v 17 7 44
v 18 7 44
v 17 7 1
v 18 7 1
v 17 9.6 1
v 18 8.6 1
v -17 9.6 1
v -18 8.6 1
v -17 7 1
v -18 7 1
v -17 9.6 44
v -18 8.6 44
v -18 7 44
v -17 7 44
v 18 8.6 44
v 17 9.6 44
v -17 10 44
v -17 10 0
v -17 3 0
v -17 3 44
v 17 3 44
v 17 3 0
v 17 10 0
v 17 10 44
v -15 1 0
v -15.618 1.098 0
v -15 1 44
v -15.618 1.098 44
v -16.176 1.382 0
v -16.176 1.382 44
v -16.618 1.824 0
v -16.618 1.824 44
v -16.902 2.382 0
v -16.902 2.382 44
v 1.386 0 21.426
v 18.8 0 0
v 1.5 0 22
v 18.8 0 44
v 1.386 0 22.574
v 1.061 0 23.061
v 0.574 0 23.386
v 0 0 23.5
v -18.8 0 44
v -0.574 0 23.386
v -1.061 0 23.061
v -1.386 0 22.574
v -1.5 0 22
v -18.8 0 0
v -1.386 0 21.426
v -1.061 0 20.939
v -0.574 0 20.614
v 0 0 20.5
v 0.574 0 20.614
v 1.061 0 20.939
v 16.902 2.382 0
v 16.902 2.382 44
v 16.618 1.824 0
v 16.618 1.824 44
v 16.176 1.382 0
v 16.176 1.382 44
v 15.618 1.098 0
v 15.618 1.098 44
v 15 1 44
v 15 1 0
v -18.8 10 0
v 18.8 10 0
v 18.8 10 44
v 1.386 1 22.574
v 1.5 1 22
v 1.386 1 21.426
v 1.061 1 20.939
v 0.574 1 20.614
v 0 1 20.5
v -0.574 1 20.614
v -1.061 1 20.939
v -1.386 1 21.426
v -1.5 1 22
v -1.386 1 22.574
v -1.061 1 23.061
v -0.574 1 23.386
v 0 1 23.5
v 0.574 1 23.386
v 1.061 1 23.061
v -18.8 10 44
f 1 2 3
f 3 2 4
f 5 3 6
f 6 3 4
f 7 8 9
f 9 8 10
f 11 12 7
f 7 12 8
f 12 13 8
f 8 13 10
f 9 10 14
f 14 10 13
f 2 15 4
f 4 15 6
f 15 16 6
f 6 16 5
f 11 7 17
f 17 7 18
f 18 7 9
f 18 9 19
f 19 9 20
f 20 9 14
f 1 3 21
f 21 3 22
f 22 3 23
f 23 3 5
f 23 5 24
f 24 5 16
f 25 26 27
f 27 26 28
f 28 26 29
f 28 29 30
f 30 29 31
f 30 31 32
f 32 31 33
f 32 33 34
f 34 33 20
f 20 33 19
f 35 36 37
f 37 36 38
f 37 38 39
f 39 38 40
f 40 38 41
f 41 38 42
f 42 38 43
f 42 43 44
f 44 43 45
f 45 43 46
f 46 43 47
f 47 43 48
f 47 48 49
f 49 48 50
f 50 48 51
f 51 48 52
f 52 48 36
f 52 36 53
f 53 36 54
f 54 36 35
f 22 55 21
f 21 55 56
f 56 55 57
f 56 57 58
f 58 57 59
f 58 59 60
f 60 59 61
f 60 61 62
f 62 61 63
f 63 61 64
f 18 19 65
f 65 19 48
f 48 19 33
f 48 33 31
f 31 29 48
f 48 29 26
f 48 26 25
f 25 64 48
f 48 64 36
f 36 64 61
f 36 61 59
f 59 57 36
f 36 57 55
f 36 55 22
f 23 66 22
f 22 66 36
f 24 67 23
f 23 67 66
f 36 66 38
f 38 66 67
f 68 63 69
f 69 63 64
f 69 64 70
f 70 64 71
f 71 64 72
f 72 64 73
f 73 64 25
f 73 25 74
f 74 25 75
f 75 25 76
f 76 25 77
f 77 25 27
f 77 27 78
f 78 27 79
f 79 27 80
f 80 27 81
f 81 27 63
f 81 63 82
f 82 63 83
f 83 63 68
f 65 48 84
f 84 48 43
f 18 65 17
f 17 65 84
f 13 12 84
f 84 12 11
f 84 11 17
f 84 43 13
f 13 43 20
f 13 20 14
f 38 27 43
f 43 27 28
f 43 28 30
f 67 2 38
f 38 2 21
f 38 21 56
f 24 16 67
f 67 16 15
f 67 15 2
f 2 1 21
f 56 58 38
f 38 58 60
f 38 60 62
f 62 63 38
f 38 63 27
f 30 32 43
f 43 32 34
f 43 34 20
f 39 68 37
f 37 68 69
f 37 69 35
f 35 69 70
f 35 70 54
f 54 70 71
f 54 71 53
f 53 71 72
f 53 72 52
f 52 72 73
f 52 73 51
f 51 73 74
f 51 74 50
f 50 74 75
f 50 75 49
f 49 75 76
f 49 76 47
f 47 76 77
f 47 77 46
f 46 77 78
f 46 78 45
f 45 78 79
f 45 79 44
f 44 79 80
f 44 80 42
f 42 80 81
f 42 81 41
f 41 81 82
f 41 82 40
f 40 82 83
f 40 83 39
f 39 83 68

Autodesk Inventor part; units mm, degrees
ref_plane "YZ Plane" through (0, 0, 0) normal (1, 0, 0) x (0, 1, 0)
ref_plane "XZ Plane" through (0, 0, 0) normal (0, 1, 0) x (-1, 0, 0)
ref_plane "XY Plane" through (0, 0, 0) normal (0, 0, 1) x (1, 0, 0)
sketch "本体面" plane through (0, 0, 0) normal (0, 0, 1) x (1, 0, 0)
  line L0 (-18.8, 10) -> (18.8, 10)
  line L1 (18.8, 10) -> (18.8, 0)
  line L2 (18.8, 0) -> (-18.8, 0)
  line L3 (-18.8, 0) -> (-18.8, 10)
  point P0 (0, 0)
  point P1 (0, 0)
  dimension "d0" = 37.6
  dimension "d1" = 10
extrude "本体" add sketch "本体面" along normal blind 44
sketch "空洞面" plane through (0, 0, 44) normal (0, 0, 1) x (1, 0, 0)
  line L0 (-17, 10) -> (17, 10)
  line L1 (17, 10) -> (17, 3)
  line L2 (15, 1) -> (-15, 1)
  line L3 (-17, 3) -> (-17, 10)
  line L4 (18.8, 10) -> (-18.8, 10) projected
  arc A0 (-17, 3) -> (-15, 1) centre (-15, 3) ccw
  arc A1 (15, 1) -> (17, 3) centre (15, 3) ccw
  point P0 (0, 0)
  point P1 (17, 1)
  point P2 (-17, 1)
  point P3 (0, 10)
  dimension "d4" = 34
  dimension "d5" = 9
  dimension "d6" = 2
extrude "空洞" cut sketch "空洞面" against normal up to surface (44 mm away)
sketch "溝形状" plane through (0, 0, 44) normal (0, 0, 1) x (1, 0, 0)
  line L0 (-17, 10) -> (-18.8, 10) construction
  line L1 (-18.8, 10) -> (-18.8, 0) construction
  line L2 (-17, 3) -> (-17, 10) construction
  line L3 (17, 9.6) -> (-17, 9.6)
  line L4 (-17, 9.6) -> (-18, 8.6)
  line L5 (18, 8.6) -> (17, 9.6)
  line L6 (18.8, 0) -> (18.8, 10) construction
  line L7 (18.8, 10) -> (17, 10) construction
  line L8 (17, 10) -> (17, 3) construction
  line L9 (-18, 8.6) -> (-18, 7)
  line L10 (-18, 7) -> (18, 7)
  line L11 (18, 7) -> (18, 8.6)
  line L12 (-10, 9) -> (10, 9) construction
  line L13 (10, 9) -> (10, 7) construction
  line L14 (10, 7) -> (-10, 7) construction
  line L15 (-10, 7) -> (-10, 9) construction
  point P0 (0, 0)
  point P1 (0, 7)
  dimension "d31" = 135
  dimension "d34" = 0.8
  dimension "d35" = 0.4
  dimension "d36" = 0.8
  dimension "d37" = 135
  dimension "d38" = 2.6
  dimension "d41" = 2
  dimension "d42" = 20
extrude "溝" cut sketch "溝形状" against normal blind 43
sketch "底中央" plane through (-18.8, 0, 0) normal (0, -1, 0) x (1, 0, 0)
  line L0 (0, 0) -> (0, 44) construction
  line L1 (37.6, 0) -> (0, 0) construction
  point P0 (18.8, 0)
  point P1 (18.8, 22)
  point P2 (0, 22)
  point P3 (18.8, 0)
sketch "スケッチ8" plane through (-15, 1, 44) normal (0, 1, 0) x (1, 0, 0)
  line L0 (30, 0) -> (30, 44) projected
  line L1 (-2, 44) -> (0, 44) projected
  line L2 (0, 0) -> (0, 44) projected
  line L3 (30, 44) -> (32, 44) projected
  circle A0 centre (15, 22) radius 1.5
  point P0 (15, 44)
  dimension "d50" = 3
extrude "押し出し5" cut sketch "スケッチ8" against normal through all
properties part number "HB5_holder"
